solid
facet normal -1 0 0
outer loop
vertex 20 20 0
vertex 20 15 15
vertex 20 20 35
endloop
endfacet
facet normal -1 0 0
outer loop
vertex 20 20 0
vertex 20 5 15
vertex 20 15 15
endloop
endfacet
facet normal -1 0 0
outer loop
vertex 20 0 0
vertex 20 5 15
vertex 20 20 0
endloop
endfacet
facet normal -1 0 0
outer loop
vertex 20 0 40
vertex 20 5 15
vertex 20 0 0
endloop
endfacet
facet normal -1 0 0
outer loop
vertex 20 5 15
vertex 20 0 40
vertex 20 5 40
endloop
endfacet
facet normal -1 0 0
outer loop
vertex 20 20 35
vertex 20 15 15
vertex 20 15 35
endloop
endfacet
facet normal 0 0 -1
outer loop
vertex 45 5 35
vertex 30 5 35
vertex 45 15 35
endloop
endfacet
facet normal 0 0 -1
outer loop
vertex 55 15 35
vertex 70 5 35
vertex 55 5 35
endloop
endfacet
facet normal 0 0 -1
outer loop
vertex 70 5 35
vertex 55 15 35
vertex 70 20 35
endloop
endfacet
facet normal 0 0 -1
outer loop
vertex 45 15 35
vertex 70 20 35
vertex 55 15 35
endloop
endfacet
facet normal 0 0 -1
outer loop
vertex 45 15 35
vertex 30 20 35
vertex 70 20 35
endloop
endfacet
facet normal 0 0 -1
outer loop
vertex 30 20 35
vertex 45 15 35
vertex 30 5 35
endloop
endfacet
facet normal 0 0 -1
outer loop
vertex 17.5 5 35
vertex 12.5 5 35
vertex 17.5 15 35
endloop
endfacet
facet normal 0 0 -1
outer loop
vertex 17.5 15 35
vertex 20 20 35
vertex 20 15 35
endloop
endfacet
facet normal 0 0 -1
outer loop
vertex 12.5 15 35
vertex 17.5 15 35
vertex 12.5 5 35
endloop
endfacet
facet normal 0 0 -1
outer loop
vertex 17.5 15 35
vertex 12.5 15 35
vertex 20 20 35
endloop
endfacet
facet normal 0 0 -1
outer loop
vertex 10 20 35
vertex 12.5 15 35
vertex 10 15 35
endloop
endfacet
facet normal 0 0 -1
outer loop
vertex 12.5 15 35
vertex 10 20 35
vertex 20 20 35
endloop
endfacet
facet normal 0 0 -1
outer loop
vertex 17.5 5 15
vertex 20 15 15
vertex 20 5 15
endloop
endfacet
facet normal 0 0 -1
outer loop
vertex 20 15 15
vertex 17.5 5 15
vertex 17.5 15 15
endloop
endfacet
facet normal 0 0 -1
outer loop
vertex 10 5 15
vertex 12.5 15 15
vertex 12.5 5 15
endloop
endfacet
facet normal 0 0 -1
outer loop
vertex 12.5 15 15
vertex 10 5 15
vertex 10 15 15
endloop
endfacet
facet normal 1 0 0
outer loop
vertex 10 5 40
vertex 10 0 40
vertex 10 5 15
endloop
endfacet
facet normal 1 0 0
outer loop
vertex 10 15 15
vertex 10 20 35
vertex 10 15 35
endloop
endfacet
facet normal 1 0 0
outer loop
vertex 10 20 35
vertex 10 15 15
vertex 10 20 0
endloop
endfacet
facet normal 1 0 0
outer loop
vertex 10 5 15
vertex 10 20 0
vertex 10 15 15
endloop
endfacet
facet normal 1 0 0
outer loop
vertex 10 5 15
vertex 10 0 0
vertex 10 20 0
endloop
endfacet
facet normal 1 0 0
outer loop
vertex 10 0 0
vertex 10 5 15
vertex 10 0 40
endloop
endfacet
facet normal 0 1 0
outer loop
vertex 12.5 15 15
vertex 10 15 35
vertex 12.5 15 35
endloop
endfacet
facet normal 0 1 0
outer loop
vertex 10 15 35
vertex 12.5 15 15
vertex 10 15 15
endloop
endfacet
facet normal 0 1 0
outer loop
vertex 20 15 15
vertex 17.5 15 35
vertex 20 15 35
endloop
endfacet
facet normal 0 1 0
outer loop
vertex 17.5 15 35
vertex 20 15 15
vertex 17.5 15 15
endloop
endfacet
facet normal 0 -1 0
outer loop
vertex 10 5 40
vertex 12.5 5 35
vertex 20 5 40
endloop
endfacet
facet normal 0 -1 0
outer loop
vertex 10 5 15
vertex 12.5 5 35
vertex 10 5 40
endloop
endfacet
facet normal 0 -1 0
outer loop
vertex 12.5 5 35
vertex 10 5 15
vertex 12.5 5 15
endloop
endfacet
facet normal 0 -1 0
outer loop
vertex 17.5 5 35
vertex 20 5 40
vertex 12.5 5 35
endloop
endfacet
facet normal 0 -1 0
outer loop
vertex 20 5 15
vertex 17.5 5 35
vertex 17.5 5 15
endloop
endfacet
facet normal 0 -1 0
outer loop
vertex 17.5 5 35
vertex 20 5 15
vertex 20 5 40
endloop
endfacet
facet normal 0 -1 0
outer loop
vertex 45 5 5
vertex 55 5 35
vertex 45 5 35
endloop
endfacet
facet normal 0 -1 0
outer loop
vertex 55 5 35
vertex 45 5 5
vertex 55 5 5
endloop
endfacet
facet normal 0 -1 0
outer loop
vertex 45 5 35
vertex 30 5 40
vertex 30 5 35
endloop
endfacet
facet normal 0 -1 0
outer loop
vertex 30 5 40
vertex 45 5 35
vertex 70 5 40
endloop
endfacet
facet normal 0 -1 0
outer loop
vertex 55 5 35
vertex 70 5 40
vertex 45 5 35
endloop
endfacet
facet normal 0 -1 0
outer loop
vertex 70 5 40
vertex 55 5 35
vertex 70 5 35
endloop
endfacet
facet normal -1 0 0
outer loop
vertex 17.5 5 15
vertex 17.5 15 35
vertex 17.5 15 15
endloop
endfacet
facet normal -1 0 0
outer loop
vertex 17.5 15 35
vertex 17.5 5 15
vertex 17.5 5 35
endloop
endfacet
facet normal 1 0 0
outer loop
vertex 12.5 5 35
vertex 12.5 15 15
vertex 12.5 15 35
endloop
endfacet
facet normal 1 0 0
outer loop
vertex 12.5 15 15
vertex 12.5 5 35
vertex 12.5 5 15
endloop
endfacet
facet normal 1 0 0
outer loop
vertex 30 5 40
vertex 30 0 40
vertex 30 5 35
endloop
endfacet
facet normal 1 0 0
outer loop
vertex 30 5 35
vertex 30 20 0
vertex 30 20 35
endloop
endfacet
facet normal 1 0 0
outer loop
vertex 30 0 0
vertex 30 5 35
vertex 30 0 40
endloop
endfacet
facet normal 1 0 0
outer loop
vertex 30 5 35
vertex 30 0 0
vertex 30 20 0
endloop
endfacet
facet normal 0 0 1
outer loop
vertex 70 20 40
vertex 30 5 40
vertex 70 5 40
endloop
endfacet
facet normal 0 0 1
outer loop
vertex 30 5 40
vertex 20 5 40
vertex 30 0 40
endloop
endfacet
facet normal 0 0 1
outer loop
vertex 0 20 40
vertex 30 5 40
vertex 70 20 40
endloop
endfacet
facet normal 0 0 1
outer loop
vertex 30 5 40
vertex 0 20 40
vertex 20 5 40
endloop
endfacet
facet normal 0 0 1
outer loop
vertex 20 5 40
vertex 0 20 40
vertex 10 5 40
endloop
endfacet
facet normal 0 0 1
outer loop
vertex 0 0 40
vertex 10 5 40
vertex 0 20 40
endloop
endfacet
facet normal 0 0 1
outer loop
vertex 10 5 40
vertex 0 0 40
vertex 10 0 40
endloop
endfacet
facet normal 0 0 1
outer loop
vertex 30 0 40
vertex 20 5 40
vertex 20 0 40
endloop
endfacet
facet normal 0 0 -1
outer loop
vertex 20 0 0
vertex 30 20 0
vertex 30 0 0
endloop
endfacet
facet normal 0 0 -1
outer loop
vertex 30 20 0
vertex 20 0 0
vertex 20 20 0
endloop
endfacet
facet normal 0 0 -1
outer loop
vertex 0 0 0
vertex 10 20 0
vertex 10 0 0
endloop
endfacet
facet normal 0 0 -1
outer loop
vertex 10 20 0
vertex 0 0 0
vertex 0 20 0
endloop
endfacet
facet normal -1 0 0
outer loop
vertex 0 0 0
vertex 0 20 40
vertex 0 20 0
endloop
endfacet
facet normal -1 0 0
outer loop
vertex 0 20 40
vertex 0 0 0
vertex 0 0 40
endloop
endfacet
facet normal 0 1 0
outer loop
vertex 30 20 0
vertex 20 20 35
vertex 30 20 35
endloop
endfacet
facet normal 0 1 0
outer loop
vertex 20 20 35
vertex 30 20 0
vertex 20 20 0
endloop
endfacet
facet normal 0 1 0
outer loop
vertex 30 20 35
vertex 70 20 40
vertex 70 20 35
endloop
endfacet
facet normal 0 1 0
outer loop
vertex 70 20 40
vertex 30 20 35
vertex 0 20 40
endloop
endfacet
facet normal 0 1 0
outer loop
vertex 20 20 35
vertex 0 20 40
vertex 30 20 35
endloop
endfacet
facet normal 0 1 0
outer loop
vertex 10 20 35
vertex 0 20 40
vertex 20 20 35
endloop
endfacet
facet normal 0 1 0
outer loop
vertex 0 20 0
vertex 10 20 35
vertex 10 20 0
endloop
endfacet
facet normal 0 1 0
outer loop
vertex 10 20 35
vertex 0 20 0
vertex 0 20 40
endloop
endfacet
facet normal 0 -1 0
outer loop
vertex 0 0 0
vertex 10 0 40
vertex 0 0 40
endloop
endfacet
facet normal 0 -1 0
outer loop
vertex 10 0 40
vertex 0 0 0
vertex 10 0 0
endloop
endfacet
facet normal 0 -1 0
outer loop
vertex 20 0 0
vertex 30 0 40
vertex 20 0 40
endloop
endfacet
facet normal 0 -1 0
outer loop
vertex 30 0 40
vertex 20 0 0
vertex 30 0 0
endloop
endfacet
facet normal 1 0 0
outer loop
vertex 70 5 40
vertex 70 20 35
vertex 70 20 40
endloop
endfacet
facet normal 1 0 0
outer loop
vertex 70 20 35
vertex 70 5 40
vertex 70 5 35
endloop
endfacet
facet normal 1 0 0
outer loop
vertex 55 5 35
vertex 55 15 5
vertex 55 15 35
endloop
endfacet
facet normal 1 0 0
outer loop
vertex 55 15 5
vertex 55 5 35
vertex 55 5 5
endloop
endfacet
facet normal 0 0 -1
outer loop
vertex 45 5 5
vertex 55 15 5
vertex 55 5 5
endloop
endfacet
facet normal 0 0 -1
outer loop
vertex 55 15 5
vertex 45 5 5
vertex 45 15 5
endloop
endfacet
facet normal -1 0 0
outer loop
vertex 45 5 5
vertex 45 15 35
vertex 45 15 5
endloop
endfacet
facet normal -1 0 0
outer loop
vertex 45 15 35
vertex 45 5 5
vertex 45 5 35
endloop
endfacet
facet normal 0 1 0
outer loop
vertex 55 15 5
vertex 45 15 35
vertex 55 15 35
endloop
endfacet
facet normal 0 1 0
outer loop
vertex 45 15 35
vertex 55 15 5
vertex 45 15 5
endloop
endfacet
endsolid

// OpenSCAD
// Base block
module base_block() {
    difference() {
        cube([30, 20, 40], center = false); // Main block
        translate([10, 0, 0]) {
            cube([10, 20, 40], center = false); // Slot
        }
    }
}

// Horizontal arm
module horizontal_arm() {
    cube([60, 15, 5], center = false); // Adjusted arm with consistent thickness and extended length
}

// Vertical arm
module vertical_arm() {
    cube([10, 10, 30], center = false); // Straight and consistent rectangular shape
}

// Connector block
module connector_block() {
    difference() {
        cube([10, 10, 20], center = false); // Main block
        translate([2.5, 0, 0]) {
            cube([5, 10, 20], center = false); // Single slot
        }
    }
}

// Assembly
module assembly() {
    // Layer 1: Horizontal arm
    translate([10, 5, 35]) {
        horizontal_arm();
    }

    // Layer 2: Vertical arm
    translate([45, 5, 5]) {
        vertical_arm();
    }

    // Layer 3: Connector block
    translate([10, 5, 15]) {
        connector_block();
    }

    // Layer 4: Base block
    base_block();
}

// Render the assembly
assembly();
